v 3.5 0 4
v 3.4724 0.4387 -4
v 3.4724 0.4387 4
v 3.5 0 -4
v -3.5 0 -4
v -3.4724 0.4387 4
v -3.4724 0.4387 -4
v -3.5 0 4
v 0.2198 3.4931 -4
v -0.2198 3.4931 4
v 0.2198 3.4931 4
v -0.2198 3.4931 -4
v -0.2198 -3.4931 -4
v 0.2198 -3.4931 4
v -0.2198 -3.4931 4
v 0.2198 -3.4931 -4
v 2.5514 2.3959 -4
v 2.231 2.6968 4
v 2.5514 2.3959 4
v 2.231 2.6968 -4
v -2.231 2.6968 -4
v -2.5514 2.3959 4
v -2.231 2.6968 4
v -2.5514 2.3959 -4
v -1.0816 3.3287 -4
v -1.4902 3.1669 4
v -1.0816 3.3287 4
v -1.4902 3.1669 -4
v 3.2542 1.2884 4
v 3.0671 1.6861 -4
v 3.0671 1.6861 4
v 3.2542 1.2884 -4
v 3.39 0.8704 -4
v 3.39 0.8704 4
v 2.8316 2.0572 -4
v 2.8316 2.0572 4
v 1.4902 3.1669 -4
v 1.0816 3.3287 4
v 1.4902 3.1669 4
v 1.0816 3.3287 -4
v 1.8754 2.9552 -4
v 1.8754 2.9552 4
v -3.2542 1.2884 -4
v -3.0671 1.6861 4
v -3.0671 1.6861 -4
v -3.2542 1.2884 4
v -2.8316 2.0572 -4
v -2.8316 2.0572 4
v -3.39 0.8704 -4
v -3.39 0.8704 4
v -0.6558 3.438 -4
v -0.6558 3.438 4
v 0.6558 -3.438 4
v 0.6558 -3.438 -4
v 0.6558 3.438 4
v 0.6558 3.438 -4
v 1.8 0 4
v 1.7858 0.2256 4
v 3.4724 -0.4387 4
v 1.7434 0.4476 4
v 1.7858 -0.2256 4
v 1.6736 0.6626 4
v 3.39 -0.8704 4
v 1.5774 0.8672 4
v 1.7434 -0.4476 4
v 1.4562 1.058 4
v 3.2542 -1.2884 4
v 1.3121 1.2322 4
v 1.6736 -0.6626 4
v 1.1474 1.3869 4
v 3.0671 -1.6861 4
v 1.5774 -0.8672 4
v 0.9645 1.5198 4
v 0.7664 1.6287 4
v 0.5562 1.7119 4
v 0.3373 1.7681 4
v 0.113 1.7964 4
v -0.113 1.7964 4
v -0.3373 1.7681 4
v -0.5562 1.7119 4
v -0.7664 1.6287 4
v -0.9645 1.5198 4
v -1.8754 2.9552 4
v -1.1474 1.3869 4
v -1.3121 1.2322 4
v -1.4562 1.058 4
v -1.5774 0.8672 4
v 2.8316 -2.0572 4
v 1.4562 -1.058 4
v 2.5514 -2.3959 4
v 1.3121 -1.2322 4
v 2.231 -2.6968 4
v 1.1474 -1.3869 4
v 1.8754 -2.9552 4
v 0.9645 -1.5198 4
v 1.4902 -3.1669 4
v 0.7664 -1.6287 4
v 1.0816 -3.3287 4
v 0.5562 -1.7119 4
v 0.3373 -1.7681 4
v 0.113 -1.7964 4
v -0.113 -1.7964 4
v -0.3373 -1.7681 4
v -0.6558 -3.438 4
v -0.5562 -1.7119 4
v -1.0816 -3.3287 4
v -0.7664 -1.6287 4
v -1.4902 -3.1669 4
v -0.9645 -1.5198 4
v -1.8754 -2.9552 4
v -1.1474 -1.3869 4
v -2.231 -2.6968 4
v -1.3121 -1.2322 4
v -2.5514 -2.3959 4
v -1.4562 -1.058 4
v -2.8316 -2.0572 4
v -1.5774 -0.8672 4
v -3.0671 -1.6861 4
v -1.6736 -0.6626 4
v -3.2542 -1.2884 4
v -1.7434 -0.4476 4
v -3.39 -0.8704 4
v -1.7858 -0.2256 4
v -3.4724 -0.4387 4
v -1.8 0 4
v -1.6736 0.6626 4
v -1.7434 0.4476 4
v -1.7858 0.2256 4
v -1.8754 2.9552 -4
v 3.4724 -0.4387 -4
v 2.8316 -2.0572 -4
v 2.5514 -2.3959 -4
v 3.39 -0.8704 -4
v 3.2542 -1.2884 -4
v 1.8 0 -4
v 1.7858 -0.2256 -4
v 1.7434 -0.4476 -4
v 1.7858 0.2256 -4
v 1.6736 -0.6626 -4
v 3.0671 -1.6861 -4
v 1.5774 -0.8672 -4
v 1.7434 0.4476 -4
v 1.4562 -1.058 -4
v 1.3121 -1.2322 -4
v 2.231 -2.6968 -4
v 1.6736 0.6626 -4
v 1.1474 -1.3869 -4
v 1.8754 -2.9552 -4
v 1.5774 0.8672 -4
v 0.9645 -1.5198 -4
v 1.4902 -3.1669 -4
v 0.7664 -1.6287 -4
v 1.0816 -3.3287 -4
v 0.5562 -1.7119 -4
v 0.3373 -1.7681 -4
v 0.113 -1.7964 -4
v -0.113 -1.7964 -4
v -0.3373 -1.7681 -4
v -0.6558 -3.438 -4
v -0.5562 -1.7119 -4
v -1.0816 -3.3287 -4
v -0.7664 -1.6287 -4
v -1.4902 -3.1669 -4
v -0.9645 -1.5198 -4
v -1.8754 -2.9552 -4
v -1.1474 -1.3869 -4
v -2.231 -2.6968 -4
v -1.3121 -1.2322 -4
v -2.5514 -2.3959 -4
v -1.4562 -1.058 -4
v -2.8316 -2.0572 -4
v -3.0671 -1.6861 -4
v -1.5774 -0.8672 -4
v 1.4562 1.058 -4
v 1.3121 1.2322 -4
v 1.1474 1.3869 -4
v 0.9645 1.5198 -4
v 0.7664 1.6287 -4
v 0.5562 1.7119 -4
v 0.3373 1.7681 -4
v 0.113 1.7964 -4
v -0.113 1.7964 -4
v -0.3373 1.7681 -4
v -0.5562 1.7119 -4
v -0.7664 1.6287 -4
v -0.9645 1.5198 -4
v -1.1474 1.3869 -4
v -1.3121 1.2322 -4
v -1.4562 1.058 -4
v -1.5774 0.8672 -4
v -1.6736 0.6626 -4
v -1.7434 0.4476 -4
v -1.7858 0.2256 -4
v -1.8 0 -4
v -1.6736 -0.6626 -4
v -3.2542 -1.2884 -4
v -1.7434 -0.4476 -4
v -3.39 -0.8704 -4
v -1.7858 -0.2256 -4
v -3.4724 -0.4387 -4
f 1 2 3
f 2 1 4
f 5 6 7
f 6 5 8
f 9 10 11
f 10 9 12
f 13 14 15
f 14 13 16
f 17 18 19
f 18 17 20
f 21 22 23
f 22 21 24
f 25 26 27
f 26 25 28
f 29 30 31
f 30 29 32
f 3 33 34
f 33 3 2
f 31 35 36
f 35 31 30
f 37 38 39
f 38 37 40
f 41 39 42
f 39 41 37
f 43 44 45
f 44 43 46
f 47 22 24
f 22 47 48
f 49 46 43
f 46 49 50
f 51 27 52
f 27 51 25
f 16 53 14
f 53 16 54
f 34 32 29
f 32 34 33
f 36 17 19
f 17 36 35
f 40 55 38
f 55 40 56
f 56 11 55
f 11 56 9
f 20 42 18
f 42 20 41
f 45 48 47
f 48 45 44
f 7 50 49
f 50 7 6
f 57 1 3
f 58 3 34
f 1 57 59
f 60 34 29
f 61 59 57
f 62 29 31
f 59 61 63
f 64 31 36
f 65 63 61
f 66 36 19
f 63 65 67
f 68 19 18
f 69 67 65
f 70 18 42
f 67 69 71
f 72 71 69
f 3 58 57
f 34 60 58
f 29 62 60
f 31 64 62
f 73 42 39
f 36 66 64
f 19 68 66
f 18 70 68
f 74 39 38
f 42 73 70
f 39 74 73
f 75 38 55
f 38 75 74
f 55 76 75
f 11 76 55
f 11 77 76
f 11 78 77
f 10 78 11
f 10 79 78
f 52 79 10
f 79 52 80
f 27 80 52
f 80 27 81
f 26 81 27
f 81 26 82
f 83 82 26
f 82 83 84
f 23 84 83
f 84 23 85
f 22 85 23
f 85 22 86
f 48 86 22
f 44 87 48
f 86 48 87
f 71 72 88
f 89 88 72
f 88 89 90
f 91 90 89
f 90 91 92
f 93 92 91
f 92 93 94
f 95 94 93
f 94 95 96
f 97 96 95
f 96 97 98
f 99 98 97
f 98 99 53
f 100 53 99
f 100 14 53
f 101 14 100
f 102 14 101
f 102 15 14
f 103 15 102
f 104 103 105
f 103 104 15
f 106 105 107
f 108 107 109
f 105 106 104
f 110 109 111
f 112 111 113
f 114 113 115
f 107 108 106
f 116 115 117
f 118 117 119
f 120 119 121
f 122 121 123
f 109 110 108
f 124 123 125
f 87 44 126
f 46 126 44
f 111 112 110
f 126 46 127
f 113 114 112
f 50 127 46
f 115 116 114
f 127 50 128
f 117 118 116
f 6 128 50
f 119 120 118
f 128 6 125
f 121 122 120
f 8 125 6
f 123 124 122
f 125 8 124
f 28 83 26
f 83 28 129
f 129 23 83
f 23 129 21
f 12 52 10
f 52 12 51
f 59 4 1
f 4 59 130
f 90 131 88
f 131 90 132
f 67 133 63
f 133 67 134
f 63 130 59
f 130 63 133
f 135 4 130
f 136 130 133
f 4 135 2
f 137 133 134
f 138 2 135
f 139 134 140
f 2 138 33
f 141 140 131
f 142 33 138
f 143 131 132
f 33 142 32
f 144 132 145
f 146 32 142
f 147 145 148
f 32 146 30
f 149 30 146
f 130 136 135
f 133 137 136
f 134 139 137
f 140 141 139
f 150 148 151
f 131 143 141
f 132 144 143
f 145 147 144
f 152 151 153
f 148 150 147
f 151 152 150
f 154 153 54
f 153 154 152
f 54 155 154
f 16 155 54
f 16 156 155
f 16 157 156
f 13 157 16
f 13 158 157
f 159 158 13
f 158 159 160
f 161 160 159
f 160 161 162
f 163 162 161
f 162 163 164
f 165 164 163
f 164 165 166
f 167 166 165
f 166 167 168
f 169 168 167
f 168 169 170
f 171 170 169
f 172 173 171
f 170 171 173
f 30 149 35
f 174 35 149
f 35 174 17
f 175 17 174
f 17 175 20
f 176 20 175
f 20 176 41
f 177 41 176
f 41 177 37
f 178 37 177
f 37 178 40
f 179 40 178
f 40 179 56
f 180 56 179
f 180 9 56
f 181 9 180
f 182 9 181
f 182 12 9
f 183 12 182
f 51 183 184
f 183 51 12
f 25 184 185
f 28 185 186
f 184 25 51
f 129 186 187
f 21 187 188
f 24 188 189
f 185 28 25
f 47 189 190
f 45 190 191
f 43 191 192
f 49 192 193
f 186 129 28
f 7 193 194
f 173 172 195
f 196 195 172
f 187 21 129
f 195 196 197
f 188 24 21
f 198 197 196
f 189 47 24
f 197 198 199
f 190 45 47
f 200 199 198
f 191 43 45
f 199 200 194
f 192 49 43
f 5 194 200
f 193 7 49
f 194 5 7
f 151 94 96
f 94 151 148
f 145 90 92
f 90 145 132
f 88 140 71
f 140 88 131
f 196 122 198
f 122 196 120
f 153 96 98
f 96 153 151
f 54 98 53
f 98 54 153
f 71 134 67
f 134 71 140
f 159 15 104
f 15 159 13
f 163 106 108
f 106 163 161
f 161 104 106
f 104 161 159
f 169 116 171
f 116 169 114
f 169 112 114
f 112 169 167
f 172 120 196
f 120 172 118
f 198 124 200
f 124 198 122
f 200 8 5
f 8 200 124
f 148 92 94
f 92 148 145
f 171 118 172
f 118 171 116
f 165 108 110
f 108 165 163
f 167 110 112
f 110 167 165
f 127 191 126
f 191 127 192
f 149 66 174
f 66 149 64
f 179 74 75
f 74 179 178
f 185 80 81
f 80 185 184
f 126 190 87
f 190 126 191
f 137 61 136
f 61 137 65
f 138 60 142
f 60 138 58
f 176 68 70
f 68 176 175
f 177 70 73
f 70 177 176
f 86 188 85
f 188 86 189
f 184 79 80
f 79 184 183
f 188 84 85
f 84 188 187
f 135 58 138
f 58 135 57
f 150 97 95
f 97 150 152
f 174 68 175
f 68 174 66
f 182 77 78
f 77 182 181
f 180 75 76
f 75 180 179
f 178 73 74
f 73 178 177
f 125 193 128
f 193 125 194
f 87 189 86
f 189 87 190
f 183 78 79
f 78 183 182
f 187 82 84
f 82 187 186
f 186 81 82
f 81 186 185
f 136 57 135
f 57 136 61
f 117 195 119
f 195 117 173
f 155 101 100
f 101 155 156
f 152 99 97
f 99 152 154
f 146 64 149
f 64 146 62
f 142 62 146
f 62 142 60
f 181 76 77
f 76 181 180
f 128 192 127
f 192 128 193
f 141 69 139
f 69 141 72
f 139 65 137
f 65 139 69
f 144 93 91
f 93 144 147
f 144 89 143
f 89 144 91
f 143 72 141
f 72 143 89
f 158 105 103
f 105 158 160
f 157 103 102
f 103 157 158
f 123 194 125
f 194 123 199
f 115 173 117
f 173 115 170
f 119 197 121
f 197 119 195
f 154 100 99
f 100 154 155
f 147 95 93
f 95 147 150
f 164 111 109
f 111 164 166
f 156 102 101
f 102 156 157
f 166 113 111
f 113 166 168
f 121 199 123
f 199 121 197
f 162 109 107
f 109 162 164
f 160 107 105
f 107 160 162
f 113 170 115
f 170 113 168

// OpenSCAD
$fn = 50;


difference() {
	union() {
		translate(v = [0, 0, -4.0000000000]) {
			cylinder(h = 8, r = 3.5000000000);
		}
	}
	union() {
		translate(v = [0, 0, -100.0000000000]) {
			cylinder(h = 200, r = 1.8000000000);
		}
	}
}
